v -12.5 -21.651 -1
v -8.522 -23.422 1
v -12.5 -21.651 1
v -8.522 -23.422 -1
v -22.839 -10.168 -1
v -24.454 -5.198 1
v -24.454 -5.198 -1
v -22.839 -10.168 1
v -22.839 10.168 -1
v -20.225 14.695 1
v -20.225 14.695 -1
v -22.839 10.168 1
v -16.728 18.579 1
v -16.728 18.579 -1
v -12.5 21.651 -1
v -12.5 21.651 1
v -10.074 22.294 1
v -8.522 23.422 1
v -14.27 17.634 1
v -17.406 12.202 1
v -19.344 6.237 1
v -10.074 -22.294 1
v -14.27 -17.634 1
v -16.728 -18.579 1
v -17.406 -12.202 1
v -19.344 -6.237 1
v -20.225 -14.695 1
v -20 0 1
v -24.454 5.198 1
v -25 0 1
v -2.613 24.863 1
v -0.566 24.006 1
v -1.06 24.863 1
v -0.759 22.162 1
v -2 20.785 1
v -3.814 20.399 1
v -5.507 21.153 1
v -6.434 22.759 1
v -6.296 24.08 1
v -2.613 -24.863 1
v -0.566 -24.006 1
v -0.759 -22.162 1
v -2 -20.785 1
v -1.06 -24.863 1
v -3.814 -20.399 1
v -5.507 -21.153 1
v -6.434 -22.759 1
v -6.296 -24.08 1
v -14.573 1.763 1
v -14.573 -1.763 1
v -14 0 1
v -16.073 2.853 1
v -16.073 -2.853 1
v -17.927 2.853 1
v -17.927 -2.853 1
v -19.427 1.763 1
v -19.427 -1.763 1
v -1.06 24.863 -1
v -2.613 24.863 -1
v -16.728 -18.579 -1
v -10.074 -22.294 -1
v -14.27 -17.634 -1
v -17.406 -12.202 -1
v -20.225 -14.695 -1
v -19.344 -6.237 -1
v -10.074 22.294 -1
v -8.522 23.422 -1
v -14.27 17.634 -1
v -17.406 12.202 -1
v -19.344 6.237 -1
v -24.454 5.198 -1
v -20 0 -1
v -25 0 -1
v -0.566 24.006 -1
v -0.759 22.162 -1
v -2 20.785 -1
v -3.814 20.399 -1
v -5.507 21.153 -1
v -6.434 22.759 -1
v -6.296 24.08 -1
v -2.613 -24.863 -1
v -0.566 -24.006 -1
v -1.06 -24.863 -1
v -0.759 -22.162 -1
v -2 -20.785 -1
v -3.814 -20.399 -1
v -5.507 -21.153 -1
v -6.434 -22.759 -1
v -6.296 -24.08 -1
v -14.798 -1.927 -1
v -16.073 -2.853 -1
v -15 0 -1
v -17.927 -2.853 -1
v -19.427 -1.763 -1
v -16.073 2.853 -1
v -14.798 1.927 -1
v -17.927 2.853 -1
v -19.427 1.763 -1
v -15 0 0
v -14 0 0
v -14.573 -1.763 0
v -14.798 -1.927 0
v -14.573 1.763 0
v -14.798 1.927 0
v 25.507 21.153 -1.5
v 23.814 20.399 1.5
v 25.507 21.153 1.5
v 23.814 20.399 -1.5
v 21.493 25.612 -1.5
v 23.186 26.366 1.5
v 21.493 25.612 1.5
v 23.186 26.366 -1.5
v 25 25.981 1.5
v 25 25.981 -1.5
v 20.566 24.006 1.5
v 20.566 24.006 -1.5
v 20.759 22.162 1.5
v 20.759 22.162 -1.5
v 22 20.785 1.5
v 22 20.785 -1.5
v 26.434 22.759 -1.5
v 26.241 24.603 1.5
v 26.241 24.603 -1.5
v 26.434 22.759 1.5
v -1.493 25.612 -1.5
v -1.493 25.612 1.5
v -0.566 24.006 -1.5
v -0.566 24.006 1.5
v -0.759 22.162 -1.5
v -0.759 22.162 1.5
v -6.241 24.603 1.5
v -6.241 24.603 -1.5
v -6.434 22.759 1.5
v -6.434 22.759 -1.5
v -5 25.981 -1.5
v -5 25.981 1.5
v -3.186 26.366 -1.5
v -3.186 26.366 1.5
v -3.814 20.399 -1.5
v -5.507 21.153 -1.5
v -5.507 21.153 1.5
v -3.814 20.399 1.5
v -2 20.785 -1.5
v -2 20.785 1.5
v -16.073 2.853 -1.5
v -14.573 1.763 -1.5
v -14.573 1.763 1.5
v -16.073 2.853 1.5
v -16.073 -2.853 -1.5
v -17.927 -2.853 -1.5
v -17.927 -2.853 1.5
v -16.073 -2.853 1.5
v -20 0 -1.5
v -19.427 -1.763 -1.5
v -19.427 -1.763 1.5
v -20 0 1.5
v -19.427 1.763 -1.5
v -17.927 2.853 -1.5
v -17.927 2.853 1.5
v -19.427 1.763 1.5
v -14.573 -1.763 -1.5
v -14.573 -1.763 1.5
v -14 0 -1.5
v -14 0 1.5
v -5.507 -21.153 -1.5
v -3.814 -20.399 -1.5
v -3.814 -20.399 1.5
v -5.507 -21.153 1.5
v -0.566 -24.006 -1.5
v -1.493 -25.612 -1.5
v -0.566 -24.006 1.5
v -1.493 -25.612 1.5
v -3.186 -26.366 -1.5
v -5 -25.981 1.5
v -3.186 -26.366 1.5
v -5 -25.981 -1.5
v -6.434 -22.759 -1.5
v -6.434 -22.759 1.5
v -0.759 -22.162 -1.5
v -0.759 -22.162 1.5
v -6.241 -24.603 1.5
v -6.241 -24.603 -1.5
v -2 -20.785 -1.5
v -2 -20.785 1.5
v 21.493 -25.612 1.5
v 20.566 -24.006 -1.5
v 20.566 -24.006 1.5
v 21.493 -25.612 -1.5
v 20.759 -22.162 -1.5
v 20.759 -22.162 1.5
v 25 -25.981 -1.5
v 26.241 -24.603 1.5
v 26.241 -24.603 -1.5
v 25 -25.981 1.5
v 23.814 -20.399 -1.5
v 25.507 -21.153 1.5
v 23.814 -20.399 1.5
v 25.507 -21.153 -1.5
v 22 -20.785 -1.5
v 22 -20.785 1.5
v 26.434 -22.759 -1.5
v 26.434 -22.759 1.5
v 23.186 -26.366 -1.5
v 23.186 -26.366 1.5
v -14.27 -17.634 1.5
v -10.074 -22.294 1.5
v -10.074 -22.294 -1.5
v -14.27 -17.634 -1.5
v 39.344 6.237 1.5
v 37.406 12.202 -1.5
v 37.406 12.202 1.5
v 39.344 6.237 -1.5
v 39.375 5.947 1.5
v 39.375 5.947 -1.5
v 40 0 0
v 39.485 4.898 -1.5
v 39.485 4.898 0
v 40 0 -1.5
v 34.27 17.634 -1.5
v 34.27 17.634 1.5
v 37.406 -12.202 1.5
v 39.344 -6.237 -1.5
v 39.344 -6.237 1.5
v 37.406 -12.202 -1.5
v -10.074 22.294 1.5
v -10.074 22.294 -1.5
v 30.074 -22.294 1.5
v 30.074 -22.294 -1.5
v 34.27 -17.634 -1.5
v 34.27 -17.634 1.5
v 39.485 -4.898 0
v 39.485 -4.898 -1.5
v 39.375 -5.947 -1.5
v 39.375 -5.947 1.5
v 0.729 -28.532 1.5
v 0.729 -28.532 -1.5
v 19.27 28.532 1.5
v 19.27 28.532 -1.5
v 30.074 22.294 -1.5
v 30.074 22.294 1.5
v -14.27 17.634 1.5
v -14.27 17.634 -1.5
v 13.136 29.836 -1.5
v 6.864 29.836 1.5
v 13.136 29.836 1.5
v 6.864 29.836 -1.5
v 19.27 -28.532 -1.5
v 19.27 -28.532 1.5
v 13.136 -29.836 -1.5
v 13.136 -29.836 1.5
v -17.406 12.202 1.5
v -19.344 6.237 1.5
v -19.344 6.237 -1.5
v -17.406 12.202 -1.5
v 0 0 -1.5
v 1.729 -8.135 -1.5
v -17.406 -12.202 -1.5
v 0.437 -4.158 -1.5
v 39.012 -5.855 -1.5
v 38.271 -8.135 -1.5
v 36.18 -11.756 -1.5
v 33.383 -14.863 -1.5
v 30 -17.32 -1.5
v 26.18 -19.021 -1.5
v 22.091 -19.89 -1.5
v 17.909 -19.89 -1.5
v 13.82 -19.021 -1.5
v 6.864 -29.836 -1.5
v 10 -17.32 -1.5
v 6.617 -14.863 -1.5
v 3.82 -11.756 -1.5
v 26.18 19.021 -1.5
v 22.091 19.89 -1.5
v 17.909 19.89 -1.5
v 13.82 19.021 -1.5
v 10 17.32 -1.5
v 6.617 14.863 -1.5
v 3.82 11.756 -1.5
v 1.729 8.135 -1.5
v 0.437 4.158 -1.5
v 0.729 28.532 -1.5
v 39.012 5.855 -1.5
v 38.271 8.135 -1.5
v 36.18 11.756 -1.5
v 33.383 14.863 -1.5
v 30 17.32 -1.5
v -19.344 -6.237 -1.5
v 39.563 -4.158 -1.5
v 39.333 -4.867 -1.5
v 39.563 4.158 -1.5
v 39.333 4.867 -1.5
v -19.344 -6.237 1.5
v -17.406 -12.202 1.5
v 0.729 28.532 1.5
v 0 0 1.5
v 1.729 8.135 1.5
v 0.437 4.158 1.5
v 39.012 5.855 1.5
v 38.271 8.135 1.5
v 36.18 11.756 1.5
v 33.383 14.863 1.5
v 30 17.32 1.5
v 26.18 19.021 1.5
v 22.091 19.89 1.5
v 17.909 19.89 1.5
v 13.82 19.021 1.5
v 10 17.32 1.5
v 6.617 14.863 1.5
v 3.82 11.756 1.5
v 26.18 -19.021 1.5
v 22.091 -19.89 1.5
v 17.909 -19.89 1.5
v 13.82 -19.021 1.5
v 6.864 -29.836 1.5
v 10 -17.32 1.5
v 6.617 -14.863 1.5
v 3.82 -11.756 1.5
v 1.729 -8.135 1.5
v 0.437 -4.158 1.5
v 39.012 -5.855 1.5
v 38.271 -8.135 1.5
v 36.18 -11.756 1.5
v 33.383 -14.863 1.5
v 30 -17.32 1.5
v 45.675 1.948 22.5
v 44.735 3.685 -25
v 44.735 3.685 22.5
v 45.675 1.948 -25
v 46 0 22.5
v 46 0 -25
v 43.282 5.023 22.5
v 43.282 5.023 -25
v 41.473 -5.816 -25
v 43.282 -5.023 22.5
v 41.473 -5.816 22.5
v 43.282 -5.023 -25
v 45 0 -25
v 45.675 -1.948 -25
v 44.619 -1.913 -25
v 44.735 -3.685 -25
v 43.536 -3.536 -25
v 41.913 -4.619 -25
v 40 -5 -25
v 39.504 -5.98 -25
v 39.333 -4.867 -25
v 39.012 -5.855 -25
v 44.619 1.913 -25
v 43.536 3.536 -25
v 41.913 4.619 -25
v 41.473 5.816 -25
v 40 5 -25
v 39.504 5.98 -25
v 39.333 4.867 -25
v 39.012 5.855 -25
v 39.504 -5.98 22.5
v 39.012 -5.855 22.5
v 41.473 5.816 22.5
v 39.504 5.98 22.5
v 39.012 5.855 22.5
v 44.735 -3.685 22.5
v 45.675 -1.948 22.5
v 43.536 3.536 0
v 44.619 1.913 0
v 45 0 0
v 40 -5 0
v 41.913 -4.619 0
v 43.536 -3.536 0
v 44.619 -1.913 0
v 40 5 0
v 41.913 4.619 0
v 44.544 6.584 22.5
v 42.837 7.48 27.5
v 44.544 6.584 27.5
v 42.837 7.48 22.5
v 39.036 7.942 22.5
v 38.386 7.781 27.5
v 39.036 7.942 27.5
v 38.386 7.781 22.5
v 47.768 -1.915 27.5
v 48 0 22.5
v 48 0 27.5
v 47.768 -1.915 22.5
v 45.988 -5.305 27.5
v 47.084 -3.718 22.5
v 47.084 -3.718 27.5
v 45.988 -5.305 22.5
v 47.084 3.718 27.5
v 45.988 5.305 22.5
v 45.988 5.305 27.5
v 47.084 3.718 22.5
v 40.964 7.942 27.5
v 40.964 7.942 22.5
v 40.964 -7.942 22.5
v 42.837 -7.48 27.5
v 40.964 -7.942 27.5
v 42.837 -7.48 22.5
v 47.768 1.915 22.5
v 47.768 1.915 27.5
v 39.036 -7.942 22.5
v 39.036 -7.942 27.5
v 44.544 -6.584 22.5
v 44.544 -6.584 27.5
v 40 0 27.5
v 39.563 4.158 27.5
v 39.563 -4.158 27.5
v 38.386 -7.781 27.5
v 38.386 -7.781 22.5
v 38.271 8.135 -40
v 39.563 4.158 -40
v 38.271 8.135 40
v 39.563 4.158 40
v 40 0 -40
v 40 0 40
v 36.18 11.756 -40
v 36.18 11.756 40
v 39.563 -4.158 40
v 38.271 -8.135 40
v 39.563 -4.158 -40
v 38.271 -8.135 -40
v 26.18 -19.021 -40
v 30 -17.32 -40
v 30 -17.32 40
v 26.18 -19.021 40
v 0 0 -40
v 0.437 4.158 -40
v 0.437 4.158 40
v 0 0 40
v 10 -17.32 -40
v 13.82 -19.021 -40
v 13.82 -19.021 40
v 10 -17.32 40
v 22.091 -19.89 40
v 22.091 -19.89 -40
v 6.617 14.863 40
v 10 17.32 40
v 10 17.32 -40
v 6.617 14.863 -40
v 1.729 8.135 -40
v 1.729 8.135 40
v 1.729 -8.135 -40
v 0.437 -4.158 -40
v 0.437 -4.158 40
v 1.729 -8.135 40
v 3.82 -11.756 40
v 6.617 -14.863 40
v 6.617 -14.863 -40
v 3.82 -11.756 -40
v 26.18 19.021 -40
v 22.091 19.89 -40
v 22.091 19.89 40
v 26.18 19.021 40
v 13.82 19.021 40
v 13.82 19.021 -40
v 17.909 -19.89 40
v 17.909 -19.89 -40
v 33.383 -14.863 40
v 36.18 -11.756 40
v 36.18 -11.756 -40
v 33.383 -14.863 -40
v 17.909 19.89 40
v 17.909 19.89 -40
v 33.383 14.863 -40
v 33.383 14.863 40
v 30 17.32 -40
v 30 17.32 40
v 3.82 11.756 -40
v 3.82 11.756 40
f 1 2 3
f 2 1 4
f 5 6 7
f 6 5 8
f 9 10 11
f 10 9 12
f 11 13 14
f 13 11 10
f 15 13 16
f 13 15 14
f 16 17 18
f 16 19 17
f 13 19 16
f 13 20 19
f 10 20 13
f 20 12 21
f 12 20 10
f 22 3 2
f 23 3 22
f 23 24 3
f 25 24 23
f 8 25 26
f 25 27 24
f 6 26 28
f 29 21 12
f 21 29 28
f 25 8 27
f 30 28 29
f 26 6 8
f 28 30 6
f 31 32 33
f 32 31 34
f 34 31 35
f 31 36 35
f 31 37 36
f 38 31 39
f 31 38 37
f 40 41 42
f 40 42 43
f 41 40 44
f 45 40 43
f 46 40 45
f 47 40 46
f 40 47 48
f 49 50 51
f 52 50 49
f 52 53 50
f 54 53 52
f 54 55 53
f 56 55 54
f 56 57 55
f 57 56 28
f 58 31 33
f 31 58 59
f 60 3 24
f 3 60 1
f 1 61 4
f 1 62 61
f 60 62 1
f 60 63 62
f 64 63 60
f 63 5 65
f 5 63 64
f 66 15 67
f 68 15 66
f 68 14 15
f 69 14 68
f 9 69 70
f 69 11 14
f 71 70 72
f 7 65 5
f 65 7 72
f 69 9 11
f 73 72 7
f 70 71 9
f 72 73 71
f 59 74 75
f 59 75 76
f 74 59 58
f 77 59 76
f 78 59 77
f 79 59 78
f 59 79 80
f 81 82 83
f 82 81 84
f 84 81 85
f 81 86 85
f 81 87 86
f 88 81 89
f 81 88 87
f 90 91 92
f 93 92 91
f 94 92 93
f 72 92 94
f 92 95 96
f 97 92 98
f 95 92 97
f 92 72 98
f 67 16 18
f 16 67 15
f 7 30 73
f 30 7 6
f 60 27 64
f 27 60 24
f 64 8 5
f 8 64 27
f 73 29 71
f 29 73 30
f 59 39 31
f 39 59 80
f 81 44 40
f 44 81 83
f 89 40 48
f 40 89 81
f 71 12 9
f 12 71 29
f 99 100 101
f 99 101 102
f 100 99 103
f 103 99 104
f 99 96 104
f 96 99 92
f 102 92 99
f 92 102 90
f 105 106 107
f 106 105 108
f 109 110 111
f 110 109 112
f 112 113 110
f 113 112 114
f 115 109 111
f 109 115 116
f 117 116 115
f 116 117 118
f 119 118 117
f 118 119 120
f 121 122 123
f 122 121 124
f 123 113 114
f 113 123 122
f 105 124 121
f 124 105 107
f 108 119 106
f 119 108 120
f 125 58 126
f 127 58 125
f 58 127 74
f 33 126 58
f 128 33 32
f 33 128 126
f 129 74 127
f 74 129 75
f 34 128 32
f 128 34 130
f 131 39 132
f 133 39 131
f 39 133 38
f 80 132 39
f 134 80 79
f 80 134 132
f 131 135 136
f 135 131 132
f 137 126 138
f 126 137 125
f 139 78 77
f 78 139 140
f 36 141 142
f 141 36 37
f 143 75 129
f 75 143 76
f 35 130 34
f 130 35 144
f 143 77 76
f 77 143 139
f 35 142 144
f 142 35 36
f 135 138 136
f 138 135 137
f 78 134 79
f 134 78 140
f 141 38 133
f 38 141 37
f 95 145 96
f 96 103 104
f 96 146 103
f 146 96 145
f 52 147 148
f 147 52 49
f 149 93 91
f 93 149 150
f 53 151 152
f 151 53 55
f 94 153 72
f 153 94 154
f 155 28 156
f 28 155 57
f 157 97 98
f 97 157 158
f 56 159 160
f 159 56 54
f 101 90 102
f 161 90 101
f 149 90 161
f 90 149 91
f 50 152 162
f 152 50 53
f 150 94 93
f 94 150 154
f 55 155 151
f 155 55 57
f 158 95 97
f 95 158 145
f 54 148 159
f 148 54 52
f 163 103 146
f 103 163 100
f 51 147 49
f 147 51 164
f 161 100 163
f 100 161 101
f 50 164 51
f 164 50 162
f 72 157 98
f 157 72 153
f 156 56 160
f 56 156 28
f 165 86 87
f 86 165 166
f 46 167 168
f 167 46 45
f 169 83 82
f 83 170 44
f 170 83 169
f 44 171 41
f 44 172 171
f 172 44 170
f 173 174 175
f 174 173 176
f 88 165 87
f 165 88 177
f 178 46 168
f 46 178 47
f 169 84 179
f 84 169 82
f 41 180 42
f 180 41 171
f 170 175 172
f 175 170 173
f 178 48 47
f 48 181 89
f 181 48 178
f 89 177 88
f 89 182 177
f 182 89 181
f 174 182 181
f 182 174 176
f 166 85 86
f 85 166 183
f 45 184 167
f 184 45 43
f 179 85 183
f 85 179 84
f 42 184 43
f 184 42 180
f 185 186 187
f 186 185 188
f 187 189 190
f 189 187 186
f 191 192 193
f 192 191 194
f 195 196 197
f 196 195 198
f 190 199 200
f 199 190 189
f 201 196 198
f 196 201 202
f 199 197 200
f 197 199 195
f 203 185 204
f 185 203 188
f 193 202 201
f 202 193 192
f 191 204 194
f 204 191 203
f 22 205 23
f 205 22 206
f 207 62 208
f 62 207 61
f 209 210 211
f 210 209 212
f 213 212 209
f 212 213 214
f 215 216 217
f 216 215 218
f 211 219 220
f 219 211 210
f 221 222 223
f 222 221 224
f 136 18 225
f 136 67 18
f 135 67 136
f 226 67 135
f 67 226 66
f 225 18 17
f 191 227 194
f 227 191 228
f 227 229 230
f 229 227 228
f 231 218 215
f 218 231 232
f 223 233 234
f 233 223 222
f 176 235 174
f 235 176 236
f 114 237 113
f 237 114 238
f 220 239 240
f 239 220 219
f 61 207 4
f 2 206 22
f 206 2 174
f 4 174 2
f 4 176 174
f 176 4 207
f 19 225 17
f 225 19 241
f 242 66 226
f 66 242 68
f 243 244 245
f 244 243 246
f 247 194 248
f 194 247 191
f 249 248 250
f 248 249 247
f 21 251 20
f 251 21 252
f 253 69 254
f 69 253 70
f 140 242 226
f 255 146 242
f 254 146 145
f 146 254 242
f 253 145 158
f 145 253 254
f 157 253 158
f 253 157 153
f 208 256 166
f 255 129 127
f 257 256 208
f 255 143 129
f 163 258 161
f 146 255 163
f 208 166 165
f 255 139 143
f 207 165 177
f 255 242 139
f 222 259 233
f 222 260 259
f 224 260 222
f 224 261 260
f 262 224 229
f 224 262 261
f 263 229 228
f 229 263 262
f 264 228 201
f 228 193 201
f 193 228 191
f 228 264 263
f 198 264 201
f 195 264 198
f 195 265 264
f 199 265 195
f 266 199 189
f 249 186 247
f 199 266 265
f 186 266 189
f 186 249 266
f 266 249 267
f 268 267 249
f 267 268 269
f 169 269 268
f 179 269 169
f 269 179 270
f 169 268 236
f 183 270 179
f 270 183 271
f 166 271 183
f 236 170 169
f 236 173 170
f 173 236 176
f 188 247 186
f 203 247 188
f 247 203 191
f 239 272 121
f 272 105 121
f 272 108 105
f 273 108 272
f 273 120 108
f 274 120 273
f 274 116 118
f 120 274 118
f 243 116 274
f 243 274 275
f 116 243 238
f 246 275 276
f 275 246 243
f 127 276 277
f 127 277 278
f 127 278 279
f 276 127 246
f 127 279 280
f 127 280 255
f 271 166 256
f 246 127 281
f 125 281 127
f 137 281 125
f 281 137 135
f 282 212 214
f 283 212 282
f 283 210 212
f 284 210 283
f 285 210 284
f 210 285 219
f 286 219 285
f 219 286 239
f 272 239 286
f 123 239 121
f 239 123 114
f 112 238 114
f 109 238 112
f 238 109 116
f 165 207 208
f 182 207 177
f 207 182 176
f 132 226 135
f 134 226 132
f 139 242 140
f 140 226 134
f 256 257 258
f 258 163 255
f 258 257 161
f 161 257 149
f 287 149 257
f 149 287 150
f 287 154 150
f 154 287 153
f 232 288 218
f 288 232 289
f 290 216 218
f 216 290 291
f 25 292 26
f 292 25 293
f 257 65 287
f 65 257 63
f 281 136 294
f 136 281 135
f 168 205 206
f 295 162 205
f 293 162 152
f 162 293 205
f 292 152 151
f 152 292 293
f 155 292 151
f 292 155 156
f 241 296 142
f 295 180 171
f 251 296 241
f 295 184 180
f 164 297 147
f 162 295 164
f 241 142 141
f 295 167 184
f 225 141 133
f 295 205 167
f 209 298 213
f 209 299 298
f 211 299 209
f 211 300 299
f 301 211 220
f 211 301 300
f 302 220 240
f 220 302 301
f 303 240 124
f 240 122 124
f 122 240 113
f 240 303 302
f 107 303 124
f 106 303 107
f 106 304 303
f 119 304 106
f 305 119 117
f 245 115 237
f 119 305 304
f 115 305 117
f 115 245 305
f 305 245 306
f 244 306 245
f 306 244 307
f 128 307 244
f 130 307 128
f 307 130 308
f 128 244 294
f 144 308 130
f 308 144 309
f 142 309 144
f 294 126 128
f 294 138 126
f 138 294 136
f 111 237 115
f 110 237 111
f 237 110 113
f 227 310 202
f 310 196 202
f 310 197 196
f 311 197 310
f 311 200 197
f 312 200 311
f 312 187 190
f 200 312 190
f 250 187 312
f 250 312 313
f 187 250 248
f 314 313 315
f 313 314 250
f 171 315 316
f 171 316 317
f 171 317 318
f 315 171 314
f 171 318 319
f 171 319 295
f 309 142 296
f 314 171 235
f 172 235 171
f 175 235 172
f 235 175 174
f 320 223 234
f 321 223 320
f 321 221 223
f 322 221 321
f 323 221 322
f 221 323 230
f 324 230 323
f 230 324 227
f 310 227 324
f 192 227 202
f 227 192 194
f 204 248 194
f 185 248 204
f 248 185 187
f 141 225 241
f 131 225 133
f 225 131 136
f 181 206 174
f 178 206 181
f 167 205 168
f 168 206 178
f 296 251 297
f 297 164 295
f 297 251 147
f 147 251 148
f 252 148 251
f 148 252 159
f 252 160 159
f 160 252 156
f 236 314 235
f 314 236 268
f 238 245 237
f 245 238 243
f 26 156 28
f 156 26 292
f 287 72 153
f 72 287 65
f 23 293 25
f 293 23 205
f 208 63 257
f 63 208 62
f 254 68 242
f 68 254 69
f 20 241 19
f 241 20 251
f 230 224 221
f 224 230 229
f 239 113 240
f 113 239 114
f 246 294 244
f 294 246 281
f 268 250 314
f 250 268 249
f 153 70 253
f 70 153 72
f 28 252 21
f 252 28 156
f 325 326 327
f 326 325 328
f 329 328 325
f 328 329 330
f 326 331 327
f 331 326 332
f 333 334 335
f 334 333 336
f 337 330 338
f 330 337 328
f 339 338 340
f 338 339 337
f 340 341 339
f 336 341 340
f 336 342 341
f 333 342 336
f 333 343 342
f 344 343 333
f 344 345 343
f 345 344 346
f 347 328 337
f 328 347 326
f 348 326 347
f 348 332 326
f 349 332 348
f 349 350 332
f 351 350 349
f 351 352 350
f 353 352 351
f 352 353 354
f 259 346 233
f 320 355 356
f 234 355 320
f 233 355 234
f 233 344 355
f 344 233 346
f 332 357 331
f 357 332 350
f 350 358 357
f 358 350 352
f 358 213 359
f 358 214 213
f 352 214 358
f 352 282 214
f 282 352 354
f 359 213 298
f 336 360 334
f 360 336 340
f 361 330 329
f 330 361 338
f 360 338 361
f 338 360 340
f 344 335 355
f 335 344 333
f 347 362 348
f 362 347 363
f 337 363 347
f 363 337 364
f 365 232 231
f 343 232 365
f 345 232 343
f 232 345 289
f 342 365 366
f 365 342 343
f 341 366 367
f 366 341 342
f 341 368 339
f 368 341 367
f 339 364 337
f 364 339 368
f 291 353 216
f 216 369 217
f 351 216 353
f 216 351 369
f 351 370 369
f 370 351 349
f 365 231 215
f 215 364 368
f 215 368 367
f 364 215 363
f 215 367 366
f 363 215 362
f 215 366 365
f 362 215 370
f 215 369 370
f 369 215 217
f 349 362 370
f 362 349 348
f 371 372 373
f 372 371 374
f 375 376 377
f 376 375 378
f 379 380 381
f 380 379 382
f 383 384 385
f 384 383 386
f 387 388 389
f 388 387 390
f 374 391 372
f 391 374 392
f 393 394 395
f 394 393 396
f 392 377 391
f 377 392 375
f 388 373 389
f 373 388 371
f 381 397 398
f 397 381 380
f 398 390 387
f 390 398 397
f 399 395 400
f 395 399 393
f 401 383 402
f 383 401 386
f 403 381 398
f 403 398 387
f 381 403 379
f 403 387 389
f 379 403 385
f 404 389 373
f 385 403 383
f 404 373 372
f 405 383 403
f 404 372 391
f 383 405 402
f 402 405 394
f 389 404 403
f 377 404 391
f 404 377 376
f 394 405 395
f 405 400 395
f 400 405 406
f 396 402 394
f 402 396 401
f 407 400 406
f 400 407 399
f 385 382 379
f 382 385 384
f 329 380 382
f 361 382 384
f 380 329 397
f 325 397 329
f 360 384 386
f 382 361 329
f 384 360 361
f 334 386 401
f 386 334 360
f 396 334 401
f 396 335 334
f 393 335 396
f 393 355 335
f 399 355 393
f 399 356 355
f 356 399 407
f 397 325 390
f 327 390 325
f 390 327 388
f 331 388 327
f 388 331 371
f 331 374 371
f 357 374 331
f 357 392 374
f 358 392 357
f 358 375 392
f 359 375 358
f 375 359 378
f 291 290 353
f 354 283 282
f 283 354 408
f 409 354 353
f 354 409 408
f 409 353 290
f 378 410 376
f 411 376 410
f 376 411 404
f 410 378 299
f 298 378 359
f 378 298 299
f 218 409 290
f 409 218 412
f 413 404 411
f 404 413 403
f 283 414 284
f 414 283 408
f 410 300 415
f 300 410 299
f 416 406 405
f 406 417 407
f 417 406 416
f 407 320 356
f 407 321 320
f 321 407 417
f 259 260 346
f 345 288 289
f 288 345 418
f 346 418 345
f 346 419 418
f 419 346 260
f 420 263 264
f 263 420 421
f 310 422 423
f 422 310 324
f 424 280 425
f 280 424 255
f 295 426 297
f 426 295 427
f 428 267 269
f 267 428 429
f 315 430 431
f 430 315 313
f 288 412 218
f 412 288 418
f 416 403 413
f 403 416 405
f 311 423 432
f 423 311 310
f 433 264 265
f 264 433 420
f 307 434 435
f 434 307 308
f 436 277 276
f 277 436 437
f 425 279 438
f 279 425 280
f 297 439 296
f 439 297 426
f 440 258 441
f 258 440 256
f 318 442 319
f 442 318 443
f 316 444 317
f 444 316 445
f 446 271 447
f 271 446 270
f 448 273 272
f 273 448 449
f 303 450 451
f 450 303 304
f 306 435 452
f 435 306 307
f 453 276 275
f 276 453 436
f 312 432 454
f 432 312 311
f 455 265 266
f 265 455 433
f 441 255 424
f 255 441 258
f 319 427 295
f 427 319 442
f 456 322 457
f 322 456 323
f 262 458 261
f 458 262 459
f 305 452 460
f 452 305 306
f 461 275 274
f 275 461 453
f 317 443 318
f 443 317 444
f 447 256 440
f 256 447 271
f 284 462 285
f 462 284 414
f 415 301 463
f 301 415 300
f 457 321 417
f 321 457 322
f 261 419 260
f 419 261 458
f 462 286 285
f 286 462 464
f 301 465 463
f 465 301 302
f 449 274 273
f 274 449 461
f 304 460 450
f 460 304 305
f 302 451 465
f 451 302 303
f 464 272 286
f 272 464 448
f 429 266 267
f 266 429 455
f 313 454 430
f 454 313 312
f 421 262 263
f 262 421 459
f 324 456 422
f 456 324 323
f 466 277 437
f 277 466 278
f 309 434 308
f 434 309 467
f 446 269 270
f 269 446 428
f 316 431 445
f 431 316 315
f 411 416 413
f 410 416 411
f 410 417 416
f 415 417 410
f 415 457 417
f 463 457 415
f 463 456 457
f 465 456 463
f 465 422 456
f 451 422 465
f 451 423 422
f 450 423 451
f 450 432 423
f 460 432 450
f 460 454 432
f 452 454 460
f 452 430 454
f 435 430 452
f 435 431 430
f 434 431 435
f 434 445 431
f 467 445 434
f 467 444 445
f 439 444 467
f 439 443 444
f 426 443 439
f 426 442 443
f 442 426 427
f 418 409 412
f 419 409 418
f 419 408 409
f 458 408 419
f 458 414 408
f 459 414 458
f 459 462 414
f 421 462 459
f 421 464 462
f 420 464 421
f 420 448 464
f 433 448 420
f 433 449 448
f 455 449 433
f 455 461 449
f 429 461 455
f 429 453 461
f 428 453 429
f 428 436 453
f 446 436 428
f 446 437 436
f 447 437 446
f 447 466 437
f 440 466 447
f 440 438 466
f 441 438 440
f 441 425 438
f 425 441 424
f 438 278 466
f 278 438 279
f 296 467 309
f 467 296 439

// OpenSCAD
// Dimensions for the ring spacer
module ring_spacer(inner_diameter, outer_diameter, thickness) {
    difference() {
        // Outer ring
        cylinder(d = outer_diameter, h = thickness, center = true);
        // Inner hollow section
        translate([0, 0, -thickness / 2])
            cylinder(d = inner_diameter, h = thickness, center = true);
    }
}

// Adjusted thickness to match a thinner and uniform profile
// Test render of the ring spacer
translate([0, 0, 0]) ring_spacer(inner_diameter = 30, outer_diameter = 50, thickness = 2.0);

// Additional modules to address the changes in other components

// Flange plate with holes
module flange_plate(diameter, holes_radius, num_holes, thickness) {
    difference() {
        cylinder(d = diameter, h = thickness, center = true);
        for (i = [0 : 360 / num_holes : 360 - 360 / num_holes]) {
            rotate([0, 0, i])
                translate([diameter/2 - holes_radius, 0, 0])
                cylinder(d = 2 * holes_radius, h = thickness + 1, center = true);
        }
    }
}

// Central cylinder with adjusted thickness
module central_cylinder(diameter, height) {
    cylinder(d = diameter, h = height, center = true);
}

// Nut with added threading detail
module nut_thread(diameter, height, thread_thickness) {
    difference() {
        cylinder(d = diameter, h = height, center = true);
        translate([0, 0, -height / 2])
            cylinder(d = diameter - thread_thickness, h = height, center = true);
    }
}

// Bolt with threading
module bolt_thread(diameter, height, head_diameter, head_height, thread_thickness) {
    union() {
        difference() {
            cylinder(d = diameter, h = height, center = true);
            translate([0, 0, -height / 2])
                cylinder(d = diameter - thread_thickness, h = height, center = true);
        }
        translate([0, 0, height / 2])
            cylinder(d = head_diameter, h = head_height, center = true);
    }
}

// Example component placements
translate([10, 0, 0]) flange_plate(diameter = 60, holes_radius = 3, num_holes = 6, thickness = 3);
translate([20, 0, 0]) central_cylinder(diameter = 40, height = 80);
translate([30, 0, 0]) nut_thread(diameter = 12, height = 6, thread_thickness = 2);
translate([40, 0, 0]) bolt_thread(diameter = 12, height = 50, head_diameter = 16, head_height = 5, thread_thickness = 2);
